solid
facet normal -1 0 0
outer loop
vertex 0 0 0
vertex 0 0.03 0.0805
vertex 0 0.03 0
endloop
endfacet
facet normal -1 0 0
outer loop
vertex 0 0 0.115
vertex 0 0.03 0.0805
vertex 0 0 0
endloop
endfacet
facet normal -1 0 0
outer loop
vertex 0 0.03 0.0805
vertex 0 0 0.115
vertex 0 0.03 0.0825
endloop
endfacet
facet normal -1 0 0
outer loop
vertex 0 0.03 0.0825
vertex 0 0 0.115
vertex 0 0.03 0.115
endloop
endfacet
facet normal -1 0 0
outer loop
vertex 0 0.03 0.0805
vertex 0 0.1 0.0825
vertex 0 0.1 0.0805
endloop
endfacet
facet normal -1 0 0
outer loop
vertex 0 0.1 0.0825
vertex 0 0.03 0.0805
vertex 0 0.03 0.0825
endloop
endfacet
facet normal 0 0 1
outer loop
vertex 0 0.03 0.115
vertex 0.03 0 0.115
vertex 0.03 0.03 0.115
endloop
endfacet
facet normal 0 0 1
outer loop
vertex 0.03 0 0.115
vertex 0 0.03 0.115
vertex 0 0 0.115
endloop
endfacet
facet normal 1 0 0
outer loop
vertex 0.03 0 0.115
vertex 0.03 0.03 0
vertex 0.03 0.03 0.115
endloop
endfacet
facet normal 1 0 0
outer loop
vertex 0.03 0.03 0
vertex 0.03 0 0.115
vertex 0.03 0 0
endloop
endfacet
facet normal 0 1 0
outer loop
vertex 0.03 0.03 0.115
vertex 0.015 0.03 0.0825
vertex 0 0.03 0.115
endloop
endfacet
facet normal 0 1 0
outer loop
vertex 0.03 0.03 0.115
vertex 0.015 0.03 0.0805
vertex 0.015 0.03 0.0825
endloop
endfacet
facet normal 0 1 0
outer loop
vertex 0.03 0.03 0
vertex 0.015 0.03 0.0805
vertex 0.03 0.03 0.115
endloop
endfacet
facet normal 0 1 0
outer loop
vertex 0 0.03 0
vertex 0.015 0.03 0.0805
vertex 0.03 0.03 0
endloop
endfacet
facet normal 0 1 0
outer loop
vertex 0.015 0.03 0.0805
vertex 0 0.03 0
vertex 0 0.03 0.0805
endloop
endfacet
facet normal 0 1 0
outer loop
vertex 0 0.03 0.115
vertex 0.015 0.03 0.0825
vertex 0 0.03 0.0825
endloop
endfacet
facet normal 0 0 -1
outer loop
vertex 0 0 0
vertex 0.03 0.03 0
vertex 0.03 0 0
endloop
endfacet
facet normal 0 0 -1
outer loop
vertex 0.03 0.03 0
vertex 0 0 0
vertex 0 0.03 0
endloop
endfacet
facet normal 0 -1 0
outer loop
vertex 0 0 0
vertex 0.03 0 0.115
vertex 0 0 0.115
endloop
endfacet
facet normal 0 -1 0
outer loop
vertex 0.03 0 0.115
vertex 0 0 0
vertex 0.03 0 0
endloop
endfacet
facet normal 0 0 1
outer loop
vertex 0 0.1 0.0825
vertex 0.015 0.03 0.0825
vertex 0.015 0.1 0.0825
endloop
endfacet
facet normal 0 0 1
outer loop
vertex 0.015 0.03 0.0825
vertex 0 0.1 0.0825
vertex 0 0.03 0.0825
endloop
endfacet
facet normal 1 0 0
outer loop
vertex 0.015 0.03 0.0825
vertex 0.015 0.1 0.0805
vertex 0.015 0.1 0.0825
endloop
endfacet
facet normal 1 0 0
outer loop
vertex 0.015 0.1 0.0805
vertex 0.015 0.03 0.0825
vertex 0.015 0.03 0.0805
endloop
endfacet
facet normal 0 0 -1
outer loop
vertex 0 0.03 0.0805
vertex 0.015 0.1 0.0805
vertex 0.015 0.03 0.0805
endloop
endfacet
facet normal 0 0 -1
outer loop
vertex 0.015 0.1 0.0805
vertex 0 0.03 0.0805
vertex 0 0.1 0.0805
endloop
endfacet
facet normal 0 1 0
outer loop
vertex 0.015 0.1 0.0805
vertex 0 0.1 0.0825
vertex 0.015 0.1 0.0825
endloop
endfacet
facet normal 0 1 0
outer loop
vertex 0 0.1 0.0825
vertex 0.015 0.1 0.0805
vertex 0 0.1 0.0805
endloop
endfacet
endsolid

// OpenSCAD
cube([0.03,0.03,0.115]);
translate([0,0,0.0805]) cube([0.015,0.1,0.002]);
